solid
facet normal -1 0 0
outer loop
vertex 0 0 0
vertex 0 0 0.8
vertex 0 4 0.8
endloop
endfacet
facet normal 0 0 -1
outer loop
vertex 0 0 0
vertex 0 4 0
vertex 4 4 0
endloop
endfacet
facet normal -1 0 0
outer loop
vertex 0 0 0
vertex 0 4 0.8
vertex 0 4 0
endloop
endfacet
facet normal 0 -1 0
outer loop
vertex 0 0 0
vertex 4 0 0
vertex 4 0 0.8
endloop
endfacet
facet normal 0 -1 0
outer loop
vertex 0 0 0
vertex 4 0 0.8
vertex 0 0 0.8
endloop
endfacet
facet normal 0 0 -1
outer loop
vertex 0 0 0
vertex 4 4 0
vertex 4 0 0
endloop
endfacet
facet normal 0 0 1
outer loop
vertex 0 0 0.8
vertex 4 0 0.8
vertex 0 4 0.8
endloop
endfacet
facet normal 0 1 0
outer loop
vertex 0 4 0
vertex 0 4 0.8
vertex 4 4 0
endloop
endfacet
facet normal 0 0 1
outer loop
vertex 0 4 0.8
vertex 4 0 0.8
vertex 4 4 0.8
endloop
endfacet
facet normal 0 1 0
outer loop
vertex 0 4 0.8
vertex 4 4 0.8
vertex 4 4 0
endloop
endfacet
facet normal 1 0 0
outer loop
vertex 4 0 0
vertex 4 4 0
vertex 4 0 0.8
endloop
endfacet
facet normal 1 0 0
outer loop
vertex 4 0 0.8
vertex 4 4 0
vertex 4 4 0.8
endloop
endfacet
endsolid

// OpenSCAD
/* Warning, this is a very basic generator with a lot of approximation 
input data : [WQFN, TRB, 4x4x0.8mm, 20, , A, C04-21443A]
generated by com.zoubworld.electronics.cad.model3d.Basic
Date : Sun Feb 15 10:50:49 CET 2026
*/

//body
color("black")
translate([0,0,0])
cube([4.0,4.0,0.8], center=false);
